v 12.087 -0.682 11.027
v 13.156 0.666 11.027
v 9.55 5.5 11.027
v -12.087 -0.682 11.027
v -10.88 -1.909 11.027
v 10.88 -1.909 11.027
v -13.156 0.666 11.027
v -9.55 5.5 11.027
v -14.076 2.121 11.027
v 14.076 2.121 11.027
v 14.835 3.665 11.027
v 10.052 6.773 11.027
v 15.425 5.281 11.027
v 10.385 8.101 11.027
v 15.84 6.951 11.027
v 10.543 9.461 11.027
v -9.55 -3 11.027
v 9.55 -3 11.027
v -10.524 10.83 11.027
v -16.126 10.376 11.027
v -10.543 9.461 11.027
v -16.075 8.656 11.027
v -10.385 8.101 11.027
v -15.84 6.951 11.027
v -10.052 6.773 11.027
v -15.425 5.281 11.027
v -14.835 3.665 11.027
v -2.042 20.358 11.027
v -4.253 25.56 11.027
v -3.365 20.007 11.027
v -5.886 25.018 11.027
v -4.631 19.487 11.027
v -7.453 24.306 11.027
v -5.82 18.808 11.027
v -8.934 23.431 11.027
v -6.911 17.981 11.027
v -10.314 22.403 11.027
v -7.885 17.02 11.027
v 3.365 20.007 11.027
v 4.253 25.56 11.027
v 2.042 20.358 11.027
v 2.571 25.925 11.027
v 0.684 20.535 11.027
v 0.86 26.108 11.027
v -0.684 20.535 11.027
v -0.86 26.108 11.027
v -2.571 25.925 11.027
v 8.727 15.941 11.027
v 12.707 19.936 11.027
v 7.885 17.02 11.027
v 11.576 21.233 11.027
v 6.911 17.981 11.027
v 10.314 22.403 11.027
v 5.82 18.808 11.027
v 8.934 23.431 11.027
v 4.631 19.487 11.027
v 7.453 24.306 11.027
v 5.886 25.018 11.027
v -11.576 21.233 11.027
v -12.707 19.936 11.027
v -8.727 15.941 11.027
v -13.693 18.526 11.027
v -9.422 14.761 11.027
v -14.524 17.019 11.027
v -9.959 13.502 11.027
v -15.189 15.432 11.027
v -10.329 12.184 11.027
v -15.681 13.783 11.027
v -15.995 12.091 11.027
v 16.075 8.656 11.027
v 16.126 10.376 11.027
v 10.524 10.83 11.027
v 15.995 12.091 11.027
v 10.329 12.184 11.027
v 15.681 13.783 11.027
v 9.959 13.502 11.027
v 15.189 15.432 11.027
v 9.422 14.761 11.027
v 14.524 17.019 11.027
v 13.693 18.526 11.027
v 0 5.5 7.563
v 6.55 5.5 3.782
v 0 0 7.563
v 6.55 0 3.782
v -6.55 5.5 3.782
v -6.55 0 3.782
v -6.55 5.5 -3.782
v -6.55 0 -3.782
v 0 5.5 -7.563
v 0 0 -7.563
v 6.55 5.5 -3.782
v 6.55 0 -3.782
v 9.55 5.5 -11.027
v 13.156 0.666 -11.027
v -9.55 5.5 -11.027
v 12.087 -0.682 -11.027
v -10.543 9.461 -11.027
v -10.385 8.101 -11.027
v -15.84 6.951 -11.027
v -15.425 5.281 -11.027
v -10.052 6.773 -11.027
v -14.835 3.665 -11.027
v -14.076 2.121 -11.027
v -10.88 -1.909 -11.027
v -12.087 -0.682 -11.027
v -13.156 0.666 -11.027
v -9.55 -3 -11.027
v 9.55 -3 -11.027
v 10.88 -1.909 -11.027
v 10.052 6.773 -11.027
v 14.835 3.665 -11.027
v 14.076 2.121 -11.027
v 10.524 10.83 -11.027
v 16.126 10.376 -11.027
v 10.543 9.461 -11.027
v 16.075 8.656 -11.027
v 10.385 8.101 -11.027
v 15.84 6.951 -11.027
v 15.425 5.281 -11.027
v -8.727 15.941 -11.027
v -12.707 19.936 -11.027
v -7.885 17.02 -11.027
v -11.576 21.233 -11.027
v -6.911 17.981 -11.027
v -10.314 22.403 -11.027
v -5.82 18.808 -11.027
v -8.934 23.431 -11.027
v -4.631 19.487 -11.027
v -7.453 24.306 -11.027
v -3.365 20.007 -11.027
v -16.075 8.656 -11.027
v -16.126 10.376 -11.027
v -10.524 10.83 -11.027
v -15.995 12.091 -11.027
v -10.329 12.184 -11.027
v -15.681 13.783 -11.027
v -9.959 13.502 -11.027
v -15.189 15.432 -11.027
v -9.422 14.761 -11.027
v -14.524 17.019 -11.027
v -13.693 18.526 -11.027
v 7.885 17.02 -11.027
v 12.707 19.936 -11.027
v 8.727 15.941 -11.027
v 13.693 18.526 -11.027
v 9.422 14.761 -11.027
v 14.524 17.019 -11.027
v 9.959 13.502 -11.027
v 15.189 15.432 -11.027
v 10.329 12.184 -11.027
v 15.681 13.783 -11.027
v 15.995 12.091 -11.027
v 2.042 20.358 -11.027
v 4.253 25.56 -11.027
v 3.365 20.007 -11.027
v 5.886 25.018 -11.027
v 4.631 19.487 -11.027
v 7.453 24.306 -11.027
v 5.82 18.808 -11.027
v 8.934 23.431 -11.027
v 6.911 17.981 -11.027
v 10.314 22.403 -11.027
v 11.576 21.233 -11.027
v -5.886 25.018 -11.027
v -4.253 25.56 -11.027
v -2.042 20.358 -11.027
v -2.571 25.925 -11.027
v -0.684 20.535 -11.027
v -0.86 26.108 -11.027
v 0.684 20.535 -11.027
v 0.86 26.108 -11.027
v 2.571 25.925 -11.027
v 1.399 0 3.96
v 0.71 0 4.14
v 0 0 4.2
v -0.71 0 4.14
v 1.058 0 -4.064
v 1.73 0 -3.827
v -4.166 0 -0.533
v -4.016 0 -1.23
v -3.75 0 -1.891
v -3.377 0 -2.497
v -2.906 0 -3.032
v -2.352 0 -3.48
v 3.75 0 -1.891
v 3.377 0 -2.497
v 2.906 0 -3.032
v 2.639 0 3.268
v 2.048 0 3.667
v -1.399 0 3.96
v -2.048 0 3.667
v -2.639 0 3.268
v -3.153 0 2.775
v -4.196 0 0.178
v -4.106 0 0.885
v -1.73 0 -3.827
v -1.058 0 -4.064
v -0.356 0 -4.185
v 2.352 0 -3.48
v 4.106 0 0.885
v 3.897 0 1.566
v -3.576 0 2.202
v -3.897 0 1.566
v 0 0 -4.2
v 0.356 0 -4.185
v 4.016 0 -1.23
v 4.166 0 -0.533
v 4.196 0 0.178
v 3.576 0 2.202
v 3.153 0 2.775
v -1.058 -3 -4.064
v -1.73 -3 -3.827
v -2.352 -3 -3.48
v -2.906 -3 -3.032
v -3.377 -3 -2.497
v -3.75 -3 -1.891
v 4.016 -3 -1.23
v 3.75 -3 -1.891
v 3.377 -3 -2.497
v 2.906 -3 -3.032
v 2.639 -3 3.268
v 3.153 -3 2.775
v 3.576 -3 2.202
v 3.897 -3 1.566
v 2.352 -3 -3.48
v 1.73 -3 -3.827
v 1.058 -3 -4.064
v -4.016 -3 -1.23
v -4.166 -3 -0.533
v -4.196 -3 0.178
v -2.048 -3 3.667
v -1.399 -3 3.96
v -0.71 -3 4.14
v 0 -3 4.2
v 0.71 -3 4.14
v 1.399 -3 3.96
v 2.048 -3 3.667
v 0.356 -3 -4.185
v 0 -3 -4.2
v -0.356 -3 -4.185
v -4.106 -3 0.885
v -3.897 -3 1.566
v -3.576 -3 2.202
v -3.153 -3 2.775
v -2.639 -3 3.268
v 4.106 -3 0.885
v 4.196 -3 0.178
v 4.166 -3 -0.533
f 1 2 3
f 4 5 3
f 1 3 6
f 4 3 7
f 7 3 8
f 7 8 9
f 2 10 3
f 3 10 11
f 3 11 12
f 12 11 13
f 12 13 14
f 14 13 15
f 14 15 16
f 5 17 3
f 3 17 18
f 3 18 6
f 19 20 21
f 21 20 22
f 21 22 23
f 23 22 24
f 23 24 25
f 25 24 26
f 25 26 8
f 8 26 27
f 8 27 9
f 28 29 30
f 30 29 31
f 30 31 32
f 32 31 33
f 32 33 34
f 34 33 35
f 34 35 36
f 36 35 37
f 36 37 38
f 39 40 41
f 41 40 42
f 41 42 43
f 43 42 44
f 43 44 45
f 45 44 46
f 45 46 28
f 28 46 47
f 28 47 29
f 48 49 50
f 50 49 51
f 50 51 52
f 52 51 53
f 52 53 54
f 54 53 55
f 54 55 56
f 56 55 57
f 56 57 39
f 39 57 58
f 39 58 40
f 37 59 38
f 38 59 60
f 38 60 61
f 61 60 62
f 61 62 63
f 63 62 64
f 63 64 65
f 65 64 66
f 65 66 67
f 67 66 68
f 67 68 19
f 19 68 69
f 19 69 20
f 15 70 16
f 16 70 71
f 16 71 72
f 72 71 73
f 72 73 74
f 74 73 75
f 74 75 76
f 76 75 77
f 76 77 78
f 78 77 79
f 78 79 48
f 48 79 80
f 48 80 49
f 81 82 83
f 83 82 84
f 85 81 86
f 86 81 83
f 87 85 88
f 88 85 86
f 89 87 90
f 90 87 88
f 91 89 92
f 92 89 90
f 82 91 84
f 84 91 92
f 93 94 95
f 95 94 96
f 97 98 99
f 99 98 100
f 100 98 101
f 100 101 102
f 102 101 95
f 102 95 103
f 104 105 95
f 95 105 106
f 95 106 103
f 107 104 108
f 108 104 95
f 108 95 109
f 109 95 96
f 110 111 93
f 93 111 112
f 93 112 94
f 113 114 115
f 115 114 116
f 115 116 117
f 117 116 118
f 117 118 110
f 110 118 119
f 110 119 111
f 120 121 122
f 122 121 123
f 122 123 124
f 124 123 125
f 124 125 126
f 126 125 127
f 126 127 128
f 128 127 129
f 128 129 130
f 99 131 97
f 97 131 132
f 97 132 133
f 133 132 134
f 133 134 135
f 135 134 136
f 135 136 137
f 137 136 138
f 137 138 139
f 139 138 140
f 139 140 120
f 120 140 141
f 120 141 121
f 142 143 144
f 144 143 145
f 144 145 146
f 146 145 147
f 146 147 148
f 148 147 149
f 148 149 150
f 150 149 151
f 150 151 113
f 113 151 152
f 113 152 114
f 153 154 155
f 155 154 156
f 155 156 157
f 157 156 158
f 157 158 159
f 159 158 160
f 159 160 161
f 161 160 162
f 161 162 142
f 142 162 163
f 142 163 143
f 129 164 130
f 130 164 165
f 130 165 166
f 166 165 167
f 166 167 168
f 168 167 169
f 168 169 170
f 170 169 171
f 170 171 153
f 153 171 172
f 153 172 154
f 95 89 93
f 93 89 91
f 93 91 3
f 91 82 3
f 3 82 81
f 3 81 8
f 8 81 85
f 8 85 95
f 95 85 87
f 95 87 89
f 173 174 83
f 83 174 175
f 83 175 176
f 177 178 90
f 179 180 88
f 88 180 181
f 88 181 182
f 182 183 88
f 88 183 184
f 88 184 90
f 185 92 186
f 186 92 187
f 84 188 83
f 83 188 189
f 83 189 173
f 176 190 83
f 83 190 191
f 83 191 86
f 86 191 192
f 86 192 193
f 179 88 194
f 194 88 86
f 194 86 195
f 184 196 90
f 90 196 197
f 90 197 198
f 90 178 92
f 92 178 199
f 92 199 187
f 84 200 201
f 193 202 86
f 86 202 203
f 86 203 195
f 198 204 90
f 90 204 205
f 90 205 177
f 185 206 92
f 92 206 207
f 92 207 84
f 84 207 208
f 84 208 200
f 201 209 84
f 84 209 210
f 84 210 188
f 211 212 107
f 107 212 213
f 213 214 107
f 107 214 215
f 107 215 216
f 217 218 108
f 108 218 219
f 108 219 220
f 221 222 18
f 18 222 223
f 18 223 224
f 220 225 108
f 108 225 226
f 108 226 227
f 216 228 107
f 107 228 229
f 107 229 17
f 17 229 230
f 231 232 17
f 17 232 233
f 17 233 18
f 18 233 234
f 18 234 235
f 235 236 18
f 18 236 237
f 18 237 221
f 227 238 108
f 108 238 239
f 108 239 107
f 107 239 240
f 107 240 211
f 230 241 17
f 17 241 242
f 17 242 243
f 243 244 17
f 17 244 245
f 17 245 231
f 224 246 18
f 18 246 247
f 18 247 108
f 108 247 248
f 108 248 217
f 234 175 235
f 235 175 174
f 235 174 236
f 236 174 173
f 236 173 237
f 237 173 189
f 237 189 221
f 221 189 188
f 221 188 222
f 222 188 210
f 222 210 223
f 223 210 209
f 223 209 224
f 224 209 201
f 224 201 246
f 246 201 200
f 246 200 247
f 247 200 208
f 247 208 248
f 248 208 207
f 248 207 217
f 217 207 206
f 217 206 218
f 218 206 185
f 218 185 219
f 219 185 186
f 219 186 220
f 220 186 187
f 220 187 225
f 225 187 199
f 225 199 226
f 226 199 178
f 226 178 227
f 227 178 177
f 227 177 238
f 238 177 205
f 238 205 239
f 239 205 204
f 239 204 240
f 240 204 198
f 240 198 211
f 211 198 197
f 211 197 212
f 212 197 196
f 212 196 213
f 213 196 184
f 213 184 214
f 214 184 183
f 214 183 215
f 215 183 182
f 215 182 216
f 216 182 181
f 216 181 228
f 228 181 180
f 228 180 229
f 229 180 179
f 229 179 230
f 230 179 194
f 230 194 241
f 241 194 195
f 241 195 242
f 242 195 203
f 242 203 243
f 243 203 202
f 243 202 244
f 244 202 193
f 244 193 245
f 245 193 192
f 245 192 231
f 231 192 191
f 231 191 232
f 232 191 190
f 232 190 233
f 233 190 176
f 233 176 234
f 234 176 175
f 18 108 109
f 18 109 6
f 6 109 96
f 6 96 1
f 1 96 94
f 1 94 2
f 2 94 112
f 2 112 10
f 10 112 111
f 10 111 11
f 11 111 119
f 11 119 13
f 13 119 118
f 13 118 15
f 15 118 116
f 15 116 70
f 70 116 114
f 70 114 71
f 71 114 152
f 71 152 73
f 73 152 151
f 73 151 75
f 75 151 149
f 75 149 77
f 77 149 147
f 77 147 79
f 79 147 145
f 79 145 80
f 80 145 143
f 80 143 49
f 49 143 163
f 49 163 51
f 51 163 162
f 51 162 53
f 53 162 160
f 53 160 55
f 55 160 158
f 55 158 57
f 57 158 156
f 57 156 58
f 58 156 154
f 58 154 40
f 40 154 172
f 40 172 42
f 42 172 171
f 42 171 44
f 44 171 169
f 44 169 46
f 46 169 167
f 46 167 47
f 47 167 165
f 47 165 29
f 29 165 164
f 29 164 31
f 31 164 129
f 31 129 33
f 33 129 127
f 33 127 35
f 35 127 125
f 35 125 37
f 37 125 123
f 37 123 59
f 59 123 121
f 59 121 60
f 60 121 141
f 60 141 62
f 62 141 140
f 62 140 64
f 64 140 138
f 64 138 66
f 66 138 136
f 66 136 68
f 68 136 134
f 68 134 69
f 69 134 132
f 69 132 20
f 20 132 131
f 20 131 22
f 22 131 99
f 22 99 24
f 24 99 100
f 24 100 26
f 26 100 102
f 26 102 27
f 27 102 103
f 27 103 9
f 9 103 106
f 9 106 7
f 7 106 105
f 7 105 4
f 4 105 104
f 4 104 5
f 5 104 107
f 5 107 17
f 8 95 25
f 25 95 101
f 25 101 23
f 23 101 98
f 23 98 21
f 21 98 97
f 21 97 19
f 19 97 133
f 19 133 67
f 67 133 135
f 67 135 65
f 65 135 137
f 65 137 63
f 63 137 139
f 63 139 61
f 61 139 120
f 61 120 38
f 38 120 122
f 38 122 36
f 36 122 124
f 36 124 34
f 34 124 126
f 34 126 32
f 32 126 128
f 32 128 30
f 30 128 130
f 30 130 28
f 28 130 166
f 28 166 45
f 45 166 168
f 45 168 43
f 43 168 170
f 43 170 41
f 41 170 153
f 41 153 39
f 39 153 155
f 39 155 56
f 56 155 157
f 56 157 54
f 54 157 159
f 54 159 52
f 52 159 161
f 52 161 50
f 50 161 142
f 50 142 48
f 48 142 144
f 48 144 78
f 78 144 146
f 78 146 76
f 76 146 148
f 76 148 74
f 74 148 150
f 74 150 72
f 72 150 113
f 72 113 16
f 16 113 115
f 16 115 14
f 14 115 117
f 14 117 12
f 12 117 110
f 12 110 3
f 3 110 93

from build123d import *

# Parameters (mm, degrees)
BOSS_EXTRU_1_DEPTH = 5.5
ESQUISSE5_W        = 19.1
ESQUISSE5_H        = 22.054780284
ESQUISSE5_R        = 4.2
BOSS_EXTRU_7_DEPTH = 3
BOSS_EXTRU_8_START = -11.02739
BOSS_EXTRU_8_DEPTH = 22.05478


with BuildPart() as part:
    # Esquisse1 → Boss.-Extru.1 (new body)
    with BuildSketch(Plane(origin=(0, 0, 0), x_dir=(1, 0, 0), z_dir=(0, 1, 0))):
        Polygon((-9.55, -5.513695071), (0, -11.027390142), (9.55, -5.513695071), (9.55, 5.513695071), (0, 11.027390142), (-9.55, 5.513695071), align=None)
        Polygon((0, -7.563288526), (6.55, -3.781644263), (6.55, 3.781644263), (0, 7.563288526), (-6.55, 3.781644263), (-6.55, -3.781644263), align=None, mode=Mode.SUBTRACT)
        Polygon((-9.55, -11.027390142), (0, -11.027390142), (-9.55, -5.513695071), align=None)
        Polygon((-9.55, 5.513695071), (0, 11.027390142), (-9.55, 11.027390142), align=None)
        Polygon((0, 11.027390142), (9.55, 5.513695071), (9.55, 11.027390142), align=None)
        Polygon((9.55, -11.027390142), (9.55, -5.513695071), (0, -11.027390142), align=None)
    extrude(amount=BOSS_EXTRU_1_DEPTH)

    # Esquisse5 → Boss.-Extru.7 (add)
    with BuildSketch(Plane(origin=(0, 0, 0), x_dir=(-1, 0, 0), z_dir=(0, -1, 0))):
        Rectangle(ESQUISSE5_W, ESQUISSE5_H)
        Circle(ESQUISSE5_R, mode=Mode.SUBTRACT)
    extrude(amount=BOSS_EXTRU_7_DEPTH)

    # Esquisse6 → Boss.-Extru.8 (add)
    with BuildSketch(Plane.XY.offset(BOSS_EXTRU_8_START)):
        with BuildLine():
            ThreePointArc((16.130793533, 10), (-7.285376509, 24.39186538), (-9.55, -3))
            Line((-9.55, -3), (-9.55, 5.5))
            ThreePointArc((-9.55, 5.5), (-2.305659544, 20.302253834), (10.557106611, 10))
            ThreePointArc((10.557106611, 10), (10.302253834, 7.694340456), (9.55, 5.5))
            Line((9.55, 5.5), (9.55, -3))
            ThreePointArc((9.55, -3), (14.39186538, 2.714623491), (16.130793533, 10))
        make_face()
    extrude(amount=BOSS_EXTRU_8_DEPTH)


solid = part.part
